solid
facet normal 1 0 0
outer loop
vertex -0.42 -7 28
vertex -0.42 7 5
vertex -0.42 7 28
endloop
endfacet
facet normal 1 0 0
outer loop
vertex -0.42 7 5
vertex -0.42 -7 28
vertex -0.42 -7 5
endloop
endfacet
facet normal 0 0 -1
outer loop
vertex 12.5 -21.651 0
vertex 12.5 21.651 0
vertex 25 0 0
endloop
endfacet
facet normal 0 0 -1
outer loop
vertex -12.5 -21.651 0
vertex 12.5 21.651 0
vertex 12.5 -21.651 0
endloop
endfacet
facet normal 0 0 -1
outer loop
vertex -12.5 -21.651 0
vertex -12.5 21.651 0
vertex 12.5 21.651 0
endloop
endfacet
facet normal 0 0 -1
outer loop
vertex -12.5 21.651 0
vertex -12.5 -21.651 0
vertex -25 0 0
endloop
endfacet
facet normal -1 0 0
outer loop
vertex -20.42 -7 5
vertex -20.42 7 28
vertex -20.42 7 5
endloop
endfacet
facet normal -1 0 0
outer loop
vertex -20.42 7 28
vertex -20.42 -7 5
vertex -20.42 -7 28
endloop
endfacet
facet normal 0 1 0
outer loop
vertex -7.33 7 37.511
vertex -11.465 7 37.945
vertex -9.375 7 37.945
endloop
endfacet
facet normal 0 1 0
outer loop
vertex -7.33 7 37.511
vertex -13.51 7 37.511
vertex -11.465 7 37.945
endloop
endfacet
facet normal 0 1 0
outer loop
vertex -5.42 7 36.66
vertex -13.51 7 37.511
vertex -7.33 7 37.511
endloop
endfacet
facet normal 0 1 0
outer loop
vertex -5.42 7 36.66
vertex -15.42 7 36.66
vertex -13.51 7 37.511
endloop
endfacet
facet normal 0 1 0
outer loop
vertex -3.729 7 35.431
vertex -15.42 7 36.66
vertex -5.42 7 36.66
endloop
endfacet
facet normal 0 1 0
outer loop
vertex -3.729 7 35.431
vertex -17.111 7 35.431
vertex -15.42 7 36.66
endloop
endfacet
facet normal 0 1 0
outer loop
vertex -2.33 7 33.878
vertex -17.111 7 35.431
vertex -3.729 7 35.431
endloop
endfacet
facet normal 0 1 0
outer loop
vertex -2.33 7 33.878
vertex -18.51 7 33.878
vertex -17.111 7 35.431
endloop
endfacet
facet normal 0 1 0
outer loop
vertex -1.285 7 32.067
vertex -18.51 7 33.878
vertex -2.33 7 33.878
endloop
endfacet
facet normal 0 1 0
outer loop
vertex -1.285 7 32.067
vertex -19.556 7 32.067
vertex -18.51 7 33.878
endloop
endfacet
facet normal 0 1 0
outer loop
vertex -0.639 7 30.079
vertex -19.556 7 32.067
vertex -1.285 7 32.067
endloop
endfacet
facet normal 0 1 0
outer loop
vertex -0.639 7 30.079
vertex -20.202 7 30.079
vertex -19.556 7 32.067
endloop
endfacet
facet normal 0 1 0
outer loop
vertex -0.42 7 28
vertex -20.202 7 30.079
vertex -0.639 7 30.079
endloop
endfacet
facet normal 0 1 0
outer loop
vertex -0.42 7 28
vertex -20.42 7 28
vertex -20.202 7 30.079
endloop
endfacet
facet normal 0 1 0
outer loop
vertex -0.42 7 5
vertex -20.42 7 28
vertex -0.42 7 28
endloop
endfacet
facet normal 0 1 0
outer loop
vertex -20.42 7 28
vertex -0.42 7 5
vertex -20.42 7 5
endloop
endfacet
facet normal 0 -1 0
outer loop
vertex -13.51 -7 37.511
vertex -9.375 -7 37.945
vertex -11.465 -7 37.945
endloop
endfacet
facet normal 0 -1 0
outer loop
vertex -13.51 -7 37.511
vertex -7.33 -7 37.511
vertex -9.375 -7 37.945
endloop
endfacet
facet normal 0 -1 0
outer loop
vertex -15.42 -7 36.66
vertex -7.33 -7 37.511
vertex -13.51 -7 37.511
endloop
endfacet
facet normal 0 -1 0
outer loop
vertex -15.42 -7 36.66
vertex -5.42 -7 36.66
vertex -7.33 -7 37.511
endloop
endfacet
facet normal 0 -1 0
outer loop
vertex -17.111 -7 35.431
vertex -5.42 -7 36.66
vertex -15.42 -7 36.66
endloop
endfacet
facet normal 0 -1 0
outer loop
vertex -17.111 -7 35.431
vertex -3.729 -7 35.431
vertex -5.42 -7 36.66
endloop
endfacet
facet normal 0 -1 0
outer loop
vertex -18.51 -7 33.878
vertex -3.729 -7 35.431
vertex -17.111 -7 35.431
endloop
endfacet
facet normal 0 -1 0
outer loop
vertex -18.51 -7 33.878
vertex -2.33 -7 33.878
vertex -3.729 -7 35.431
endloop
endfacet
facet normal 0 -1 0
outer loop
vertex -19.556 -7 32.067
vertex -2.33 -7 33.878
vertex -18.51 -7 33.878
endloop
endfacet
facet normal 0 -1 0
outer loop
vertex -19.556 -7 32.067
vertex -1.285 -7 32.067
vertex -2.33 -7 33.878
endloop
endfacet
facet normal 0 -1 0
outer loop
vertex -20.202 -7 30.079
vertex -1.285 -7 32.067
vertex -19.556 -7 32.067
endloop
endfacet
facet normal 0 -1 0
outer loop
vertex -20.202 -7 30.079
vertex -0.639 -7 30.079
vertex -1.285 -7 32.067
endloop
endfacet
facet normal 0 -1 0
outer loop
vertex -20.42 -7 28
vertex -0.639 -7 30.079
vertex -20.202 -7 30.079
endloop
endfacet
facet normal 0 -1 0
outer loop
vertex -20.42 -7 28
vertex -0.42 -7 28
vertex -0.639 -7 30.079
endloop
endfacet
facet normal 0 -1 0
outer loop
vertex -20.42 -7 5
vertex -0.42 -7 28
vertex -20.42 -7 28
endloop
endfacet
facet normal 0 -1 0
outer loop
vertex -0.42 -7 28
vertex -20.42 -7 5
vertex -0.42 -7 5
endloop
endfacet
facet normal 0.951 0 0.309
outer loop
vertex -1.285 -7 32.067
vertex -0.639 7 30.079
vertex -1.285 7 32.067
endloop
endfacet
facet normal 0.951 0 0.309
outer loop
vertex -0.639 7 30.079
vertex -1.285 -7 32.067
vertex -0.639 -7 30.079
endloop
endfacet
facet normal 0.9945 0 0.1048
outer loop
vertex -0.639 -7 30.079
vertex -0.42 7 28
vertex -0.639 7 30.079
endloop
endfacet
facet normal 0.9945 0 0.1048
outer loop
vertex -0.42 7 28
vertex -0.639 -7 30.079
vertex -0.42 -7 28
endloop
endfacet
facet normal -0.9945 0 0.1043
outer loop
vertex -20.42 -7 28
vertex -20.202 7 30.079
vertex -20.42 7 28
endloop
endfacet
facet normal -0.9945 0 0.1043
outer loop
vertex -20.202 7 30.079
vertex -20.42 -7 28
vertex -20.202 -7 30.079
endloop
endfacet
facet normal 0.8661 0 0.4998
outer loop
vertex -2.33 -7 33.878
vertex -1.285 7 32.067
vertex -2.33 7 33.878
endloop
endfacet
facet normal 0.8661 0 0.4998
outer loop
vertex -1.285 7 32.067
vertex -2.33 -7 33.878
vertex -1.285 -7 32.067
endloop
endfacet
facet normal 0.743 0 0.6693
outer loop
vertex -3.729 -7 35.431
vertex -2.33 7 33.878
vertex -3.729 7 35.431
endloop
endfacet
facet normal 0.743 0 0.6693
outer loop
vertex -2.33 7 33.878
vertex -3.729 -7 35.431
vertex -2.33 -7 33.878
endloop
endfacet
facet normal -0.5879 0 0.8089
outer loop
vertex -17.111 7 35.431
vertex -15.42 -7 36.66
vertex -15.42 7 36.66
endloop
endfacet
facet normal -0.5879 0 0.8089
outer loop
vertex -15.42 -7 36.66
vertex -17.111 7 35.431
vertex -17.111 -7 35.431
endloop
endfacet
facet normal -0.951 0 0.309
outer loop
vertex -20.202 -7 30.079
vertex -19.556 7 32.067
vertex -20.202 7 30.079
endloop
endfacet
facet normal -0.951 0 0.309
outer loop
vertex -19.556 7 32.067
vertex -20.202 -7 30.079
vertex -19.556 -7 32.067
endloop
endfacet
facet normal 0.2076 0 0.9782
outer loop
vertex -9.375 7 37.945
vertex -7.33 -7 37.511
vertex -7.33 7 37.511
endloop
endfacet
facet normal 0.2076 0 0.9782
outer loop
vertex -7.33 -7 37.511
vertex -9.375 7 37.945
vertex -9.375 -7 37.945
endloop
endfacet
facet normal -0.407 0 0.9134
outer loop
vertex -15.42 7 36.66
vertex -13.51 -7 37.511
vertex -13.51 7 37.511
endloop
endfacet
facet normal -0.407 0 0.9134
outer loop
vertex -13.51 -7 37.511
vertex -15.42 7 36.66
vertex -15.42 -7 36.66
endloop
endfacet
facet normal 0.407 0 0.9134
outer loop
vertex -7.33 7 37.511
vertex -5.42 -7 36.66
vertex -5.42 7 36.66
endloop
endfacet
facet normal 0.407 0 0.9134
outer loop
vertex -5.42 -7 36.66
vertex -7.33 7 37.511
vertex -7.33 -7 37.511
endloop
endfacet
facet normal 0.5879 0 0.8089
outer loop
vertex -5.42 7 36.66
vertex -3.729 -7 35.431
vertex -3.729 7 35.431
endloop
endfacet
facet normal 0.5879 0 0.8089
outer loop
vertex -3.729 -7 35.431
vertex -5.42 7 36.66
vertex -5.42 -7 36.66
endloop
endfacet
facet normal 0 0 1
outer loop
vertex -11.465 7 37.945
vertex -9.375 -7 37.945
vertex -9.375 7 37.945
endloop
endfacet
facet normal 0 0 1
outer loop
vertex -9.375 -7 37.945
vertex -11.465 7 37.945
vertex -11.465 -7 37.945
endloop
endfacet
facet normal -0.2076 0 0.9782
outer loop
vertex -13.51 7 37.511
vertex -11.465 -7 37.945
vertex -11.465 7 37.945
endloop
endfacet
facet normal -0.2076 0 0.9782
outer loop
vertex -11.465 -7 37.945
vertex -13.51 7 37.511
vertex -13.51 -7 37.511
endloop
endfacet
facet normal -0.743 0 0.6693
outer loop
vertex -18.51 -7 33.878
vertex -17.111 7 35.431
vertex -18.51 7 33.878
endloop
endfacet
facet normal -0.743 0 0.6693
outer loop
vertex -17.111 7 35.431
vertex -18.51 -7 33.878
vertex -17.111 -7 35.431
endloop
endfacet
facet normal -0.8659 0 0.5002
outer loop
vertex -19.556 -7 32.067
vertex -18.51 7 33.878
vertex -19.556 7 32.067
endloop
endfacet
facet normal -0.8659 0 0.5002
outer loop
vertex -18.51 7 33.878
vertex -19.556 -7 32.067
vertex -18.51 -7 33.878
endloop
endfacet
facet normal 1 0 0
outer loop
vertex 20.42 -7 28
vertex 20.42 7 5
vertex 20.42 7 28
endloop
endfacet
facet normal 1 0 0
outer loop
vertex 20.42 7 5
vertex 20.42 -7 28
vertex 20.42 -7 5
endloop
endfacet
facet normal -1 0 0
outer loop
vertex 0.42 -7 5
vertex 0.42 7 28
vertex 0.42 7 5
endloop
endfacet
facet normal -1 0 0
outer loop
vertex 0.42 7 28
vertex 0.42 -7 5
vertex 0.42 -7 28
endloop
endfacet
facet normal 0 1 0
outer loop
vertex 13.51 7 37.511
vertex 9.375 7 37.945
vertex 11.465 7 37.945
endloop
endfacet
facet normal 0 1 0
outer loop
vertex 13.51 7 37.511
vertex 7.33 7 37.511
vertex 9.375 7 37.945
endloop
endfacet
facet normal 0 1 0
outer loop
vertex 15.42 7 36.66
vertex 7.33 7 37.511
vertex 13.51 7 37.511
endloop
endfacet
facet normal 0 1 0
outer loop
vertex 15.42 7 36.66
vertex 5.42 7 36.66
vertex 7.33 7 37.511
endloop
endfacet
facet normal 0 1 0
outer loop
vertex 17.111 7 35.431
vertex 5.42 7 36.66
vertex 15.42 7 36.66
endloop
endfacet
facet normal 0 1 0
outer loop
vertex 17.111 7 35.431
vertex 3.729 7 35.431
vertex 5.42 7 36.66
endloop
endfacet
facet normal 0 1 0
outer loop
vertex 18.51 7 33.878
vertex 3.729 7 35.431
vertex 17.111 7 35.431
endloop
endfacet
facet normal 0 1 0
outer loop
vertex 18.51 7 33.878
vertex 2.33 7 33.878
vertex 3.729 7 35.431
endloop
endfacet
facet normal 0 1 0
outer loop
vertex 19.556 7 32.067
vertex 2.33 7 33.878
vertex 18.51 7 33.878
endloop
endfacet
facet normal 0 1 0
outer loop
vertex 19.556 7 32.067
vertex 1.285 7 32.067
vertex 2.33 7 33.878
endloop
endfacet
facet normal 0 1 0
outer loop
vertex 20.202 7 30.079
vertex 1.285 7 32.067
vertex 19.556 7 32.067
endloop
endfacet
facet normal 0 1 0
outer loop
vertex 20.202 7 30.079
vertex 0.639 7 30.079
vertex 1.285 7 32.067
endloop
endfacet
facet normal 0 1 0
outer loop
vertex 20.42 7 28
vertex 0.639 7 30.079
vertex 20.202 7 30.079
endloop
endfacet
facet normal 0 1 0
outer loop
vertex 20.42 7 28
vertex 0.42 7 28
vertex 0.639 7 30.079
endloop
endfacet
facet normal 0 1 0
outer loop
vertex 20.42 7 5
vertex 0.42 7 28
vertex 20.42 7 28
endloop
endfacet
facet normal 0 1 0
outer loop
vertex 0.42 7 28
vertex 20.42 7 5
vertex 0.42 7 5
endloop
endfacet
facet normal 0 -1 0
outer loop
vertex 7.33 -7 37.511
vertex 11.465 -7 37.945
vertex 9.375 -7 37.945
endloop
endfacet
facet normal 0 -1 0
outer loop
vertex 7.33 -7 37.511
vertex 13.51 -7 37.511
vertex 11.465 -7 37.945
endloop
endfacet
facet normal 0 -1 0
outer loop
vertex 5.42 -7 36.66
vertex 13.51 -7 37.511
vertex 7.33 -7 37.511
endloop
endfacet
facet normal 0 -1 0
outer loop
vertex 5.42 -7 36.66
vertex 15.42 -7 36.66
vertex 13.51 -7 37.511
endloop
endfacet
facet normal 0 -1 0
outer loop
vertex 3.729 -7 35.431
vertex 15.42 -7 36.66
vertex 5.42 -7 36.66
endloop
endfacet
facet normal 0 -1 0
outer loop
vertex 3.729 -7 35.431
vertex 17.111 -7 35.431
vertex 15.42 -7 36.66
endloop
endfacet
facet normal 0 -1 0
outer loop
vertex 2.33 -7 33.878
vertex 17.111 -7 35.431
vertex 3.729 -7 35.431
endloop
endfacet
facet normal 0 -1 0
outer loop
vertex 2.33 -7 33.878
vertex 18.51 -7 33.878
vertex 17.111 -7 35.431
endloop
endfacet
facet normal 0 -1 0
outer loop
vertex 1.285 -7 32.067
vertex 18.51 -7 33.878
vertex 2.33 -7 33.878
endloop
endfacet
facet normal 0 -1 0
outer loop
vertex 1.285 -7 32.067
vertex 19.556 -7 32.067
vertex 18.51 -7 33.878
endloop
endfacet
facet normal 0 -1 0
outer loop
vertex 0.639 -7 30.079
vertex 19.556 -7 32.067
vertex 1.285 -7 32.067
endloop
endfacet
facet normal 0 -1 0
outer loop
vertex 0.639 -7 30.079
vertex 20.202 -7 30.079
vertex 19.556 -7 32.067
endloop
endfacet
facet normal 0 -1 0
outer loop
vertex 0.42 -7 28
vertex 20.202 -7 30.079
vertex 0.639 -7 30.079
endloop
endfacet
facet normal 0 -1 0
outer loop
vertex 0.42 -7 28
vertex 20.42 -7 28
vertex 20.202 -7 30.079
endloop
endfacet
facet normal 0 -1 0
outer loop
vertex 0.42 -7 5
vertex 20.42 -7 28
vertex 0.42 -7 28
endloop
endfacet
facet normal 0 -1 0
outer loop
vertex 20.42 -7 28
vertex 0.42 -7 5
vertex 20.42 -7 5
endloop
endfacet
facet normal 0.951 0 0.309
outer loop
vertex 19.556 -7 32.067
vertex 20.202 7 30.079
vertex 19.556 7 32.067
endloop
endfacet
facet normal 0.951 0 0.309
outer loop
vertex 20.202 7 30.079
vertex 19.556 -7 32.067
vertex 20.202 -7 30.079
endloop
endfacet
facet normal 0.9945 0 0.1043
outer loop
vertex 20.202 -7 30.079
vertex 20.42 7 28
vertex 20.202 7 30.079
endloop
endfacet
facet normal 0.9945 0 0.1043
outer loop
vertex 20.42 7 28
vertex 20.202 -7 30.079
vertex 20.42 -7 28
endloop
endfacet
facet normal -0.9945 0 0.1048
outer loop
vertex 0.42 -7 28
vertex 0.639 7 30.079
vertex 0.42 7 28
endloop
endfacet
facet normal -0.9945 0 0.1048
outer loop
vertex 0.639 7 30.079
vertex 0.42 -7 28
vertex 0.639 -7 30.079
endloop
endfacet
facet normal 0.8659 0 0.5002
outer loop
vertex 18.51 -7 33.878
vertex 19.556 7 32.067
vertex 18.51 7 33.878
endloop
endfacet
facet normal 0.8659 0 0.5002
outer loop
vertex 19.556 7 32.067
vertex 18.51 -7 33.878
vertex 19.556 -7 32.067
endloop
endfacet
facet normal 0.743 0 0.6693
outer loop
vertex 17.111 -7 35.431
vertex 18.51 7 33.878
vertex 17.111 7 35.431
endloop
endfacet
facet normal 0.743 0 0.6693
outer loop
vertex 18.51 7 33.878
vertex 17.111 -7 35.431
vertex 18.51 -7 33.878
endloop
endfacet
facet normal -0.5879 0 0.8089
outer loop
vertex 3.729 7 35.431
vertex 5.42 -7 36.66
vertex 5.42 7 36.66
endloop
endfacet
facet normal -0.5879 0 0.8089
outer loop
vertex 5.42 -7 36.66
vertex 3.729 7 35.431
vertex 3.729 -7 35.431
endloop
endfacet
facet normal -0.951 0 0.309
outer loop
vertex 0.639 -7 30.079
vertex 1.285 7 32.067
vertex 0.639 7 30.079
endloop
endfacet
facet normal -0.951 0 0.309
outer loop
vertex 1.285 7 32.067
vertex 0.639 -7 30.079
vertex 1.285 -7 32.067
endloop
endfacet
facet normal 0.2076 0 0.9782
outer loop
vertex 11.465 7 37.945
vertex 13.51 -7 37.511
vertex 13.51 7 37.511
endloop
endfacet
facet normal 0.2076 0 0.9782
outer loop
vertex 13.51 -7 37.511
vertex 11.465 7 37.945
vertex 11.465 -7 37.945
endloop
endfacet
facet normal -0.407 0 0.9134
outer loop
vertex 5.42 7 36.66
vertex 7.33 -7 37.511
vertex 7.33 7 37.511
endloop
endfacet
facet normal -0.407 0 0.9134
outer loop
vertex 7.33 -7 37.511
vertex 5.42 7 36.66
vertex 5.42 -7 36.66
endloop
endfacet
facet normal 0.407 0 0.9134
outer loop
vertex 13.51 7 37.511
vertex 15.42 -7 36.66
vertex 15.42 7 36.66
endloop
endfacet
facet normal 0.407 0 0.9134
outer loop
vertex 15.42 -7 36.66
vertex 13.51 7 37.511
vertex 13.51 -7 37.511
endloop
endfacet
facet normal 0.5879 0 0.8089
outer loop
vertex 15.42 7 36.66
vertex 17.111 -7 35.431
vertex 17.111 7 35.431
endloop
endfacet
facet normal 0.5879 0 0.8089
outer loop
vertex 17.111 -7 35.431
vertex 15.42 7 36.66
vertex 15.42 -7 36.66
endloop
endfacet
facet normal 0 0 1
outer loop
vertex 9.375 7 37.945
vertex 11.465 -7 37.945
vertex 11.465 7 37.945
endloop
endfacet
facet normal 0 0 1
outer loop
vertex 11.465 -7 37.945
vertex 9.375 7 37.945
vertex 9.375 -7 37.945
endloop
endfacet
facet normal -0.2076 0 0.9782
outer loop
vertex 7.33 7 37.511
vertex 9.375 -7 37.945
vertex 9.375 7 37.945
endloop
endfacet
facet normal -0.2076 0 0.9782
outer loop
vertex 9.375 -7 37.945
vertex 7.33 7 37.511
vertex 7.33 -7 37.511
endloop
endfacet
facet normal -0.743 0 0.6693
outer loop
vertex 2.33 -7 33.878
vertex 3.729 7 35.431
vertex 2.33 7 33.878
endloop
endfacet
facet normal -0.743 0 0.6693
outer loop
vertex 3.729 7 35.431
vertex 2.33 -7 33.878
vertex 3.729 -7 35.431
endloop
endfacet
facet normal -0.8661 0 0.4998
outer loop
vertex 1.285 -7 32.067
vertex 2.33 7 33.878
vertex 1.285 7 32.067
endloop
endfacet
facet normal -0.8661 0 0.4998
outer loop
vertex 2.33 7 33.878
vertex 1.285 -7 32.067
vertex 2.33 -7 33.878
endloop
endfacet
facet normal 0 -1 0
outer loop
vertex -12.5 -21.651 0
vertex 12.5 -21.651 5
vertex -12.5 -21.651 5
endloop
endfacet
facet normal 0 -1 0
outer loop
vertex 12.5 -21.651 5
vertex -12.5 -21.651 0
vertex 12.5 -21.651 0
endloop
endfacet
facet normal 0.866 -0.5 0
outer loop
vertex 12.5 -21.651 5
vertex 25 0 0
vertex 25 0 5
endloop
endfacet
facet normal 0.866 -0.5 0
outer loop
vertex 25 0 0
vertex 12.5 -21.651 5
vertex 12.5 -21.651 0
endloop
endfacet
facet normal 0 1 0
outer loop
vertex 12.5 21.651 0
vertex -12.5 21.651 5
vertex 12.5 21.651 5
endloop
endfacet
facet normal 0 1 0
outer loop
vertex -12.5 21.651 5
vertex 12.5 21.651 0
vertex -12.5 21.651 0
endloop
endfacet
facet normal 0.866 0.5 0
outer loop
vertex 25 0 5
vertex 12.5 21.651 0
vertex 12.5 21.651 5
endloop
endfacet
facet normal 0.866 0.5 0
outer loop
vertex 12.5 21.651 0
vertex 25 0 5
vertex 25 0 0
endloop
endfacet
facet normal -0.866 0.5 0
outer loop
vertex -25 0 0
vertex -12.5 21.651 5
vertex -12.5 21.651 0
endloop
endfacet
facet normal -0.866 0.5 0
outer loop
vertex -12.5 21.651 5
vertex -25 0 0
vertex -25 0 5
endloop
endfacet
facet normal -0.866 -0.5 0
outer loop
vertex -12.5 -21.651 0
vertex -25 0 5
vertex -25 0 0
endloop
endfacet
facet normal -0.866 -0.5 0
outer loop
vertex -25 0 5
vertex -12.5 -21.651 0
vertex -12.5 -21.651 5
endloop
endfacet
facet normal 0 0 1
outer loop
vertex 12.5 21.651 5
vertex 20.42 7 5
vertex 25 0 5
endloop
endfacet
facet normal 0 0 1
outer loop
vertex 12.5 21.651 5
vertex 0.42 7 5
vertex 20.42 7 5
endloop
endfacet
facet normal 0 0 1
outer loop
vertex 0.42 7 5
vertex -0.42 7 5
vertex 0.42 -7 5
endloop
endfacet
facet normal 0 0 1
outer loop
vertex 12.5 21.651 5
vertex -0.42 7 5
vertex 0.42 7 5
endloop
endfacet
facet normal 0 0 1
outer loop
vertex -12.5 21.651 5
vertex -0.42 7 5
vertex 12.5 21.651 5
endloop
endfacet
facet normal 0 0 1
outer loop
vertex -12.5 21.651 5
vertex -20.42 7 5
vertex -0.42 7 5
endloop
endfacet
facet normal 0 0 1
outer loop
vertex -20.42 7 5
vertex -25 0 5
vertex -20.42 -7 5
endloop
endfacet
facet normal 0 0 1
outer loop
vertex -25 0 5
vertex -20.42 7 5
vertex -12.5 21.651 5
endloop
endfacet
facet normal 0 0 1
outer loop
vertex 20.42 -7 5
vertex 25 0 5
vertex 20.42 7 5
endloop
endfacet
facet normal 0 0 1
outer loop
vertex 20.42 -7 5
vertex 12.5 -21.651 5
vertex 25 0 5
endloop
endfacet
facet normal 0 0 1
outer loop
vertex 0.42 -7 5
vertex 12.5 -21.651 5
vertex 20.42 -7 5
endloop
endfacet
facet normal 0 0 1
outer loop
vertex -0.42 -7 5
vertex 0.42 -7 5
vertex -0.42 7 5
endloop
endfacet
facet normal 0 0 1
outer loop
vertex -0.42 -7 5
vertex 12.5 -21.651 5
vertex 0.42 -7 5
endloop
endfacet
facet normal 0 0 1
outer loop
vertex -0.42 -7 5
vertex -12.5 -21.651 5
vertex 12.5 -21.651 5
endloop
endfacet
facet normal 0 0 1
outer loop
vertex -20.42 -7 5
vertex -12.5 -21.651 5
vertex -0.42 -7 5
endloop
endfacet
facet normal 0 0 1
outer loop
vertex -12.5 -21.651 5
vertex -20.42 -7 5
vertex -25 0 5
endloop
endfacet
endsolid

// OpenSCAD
//$fn=6;

// unit is mm

swi = 0.84; // slit width
swi2 = swi / 2;

tow = 20; // tooth width
tot = 14; // tooth thickness
toh = 28; // tooth height

bah = 5; // base height

module tooth() {
  translate([ 0, 0, toh / 2 ])
    cube(size=[ tow, tot, toh ], center=true);
  translate([ 0, 0, toh ])
    rotate([ 90, 0, 0 ]) cylinder(d=tow, h=tot, center=true);
}

module holder() {
  translate([ -tow / 2 - swi2, 0, 0 ]) tooth();
  translate([ tow / 2 + swi2, 0, 0 ]) tooth();
  translate([ 0, 0, bah / 2 ])
    rotate([ 0, 0, 0 ])
      cylinder(d=tow * 2.5, h=bah, center=true, $fn=6);
}

holder();
